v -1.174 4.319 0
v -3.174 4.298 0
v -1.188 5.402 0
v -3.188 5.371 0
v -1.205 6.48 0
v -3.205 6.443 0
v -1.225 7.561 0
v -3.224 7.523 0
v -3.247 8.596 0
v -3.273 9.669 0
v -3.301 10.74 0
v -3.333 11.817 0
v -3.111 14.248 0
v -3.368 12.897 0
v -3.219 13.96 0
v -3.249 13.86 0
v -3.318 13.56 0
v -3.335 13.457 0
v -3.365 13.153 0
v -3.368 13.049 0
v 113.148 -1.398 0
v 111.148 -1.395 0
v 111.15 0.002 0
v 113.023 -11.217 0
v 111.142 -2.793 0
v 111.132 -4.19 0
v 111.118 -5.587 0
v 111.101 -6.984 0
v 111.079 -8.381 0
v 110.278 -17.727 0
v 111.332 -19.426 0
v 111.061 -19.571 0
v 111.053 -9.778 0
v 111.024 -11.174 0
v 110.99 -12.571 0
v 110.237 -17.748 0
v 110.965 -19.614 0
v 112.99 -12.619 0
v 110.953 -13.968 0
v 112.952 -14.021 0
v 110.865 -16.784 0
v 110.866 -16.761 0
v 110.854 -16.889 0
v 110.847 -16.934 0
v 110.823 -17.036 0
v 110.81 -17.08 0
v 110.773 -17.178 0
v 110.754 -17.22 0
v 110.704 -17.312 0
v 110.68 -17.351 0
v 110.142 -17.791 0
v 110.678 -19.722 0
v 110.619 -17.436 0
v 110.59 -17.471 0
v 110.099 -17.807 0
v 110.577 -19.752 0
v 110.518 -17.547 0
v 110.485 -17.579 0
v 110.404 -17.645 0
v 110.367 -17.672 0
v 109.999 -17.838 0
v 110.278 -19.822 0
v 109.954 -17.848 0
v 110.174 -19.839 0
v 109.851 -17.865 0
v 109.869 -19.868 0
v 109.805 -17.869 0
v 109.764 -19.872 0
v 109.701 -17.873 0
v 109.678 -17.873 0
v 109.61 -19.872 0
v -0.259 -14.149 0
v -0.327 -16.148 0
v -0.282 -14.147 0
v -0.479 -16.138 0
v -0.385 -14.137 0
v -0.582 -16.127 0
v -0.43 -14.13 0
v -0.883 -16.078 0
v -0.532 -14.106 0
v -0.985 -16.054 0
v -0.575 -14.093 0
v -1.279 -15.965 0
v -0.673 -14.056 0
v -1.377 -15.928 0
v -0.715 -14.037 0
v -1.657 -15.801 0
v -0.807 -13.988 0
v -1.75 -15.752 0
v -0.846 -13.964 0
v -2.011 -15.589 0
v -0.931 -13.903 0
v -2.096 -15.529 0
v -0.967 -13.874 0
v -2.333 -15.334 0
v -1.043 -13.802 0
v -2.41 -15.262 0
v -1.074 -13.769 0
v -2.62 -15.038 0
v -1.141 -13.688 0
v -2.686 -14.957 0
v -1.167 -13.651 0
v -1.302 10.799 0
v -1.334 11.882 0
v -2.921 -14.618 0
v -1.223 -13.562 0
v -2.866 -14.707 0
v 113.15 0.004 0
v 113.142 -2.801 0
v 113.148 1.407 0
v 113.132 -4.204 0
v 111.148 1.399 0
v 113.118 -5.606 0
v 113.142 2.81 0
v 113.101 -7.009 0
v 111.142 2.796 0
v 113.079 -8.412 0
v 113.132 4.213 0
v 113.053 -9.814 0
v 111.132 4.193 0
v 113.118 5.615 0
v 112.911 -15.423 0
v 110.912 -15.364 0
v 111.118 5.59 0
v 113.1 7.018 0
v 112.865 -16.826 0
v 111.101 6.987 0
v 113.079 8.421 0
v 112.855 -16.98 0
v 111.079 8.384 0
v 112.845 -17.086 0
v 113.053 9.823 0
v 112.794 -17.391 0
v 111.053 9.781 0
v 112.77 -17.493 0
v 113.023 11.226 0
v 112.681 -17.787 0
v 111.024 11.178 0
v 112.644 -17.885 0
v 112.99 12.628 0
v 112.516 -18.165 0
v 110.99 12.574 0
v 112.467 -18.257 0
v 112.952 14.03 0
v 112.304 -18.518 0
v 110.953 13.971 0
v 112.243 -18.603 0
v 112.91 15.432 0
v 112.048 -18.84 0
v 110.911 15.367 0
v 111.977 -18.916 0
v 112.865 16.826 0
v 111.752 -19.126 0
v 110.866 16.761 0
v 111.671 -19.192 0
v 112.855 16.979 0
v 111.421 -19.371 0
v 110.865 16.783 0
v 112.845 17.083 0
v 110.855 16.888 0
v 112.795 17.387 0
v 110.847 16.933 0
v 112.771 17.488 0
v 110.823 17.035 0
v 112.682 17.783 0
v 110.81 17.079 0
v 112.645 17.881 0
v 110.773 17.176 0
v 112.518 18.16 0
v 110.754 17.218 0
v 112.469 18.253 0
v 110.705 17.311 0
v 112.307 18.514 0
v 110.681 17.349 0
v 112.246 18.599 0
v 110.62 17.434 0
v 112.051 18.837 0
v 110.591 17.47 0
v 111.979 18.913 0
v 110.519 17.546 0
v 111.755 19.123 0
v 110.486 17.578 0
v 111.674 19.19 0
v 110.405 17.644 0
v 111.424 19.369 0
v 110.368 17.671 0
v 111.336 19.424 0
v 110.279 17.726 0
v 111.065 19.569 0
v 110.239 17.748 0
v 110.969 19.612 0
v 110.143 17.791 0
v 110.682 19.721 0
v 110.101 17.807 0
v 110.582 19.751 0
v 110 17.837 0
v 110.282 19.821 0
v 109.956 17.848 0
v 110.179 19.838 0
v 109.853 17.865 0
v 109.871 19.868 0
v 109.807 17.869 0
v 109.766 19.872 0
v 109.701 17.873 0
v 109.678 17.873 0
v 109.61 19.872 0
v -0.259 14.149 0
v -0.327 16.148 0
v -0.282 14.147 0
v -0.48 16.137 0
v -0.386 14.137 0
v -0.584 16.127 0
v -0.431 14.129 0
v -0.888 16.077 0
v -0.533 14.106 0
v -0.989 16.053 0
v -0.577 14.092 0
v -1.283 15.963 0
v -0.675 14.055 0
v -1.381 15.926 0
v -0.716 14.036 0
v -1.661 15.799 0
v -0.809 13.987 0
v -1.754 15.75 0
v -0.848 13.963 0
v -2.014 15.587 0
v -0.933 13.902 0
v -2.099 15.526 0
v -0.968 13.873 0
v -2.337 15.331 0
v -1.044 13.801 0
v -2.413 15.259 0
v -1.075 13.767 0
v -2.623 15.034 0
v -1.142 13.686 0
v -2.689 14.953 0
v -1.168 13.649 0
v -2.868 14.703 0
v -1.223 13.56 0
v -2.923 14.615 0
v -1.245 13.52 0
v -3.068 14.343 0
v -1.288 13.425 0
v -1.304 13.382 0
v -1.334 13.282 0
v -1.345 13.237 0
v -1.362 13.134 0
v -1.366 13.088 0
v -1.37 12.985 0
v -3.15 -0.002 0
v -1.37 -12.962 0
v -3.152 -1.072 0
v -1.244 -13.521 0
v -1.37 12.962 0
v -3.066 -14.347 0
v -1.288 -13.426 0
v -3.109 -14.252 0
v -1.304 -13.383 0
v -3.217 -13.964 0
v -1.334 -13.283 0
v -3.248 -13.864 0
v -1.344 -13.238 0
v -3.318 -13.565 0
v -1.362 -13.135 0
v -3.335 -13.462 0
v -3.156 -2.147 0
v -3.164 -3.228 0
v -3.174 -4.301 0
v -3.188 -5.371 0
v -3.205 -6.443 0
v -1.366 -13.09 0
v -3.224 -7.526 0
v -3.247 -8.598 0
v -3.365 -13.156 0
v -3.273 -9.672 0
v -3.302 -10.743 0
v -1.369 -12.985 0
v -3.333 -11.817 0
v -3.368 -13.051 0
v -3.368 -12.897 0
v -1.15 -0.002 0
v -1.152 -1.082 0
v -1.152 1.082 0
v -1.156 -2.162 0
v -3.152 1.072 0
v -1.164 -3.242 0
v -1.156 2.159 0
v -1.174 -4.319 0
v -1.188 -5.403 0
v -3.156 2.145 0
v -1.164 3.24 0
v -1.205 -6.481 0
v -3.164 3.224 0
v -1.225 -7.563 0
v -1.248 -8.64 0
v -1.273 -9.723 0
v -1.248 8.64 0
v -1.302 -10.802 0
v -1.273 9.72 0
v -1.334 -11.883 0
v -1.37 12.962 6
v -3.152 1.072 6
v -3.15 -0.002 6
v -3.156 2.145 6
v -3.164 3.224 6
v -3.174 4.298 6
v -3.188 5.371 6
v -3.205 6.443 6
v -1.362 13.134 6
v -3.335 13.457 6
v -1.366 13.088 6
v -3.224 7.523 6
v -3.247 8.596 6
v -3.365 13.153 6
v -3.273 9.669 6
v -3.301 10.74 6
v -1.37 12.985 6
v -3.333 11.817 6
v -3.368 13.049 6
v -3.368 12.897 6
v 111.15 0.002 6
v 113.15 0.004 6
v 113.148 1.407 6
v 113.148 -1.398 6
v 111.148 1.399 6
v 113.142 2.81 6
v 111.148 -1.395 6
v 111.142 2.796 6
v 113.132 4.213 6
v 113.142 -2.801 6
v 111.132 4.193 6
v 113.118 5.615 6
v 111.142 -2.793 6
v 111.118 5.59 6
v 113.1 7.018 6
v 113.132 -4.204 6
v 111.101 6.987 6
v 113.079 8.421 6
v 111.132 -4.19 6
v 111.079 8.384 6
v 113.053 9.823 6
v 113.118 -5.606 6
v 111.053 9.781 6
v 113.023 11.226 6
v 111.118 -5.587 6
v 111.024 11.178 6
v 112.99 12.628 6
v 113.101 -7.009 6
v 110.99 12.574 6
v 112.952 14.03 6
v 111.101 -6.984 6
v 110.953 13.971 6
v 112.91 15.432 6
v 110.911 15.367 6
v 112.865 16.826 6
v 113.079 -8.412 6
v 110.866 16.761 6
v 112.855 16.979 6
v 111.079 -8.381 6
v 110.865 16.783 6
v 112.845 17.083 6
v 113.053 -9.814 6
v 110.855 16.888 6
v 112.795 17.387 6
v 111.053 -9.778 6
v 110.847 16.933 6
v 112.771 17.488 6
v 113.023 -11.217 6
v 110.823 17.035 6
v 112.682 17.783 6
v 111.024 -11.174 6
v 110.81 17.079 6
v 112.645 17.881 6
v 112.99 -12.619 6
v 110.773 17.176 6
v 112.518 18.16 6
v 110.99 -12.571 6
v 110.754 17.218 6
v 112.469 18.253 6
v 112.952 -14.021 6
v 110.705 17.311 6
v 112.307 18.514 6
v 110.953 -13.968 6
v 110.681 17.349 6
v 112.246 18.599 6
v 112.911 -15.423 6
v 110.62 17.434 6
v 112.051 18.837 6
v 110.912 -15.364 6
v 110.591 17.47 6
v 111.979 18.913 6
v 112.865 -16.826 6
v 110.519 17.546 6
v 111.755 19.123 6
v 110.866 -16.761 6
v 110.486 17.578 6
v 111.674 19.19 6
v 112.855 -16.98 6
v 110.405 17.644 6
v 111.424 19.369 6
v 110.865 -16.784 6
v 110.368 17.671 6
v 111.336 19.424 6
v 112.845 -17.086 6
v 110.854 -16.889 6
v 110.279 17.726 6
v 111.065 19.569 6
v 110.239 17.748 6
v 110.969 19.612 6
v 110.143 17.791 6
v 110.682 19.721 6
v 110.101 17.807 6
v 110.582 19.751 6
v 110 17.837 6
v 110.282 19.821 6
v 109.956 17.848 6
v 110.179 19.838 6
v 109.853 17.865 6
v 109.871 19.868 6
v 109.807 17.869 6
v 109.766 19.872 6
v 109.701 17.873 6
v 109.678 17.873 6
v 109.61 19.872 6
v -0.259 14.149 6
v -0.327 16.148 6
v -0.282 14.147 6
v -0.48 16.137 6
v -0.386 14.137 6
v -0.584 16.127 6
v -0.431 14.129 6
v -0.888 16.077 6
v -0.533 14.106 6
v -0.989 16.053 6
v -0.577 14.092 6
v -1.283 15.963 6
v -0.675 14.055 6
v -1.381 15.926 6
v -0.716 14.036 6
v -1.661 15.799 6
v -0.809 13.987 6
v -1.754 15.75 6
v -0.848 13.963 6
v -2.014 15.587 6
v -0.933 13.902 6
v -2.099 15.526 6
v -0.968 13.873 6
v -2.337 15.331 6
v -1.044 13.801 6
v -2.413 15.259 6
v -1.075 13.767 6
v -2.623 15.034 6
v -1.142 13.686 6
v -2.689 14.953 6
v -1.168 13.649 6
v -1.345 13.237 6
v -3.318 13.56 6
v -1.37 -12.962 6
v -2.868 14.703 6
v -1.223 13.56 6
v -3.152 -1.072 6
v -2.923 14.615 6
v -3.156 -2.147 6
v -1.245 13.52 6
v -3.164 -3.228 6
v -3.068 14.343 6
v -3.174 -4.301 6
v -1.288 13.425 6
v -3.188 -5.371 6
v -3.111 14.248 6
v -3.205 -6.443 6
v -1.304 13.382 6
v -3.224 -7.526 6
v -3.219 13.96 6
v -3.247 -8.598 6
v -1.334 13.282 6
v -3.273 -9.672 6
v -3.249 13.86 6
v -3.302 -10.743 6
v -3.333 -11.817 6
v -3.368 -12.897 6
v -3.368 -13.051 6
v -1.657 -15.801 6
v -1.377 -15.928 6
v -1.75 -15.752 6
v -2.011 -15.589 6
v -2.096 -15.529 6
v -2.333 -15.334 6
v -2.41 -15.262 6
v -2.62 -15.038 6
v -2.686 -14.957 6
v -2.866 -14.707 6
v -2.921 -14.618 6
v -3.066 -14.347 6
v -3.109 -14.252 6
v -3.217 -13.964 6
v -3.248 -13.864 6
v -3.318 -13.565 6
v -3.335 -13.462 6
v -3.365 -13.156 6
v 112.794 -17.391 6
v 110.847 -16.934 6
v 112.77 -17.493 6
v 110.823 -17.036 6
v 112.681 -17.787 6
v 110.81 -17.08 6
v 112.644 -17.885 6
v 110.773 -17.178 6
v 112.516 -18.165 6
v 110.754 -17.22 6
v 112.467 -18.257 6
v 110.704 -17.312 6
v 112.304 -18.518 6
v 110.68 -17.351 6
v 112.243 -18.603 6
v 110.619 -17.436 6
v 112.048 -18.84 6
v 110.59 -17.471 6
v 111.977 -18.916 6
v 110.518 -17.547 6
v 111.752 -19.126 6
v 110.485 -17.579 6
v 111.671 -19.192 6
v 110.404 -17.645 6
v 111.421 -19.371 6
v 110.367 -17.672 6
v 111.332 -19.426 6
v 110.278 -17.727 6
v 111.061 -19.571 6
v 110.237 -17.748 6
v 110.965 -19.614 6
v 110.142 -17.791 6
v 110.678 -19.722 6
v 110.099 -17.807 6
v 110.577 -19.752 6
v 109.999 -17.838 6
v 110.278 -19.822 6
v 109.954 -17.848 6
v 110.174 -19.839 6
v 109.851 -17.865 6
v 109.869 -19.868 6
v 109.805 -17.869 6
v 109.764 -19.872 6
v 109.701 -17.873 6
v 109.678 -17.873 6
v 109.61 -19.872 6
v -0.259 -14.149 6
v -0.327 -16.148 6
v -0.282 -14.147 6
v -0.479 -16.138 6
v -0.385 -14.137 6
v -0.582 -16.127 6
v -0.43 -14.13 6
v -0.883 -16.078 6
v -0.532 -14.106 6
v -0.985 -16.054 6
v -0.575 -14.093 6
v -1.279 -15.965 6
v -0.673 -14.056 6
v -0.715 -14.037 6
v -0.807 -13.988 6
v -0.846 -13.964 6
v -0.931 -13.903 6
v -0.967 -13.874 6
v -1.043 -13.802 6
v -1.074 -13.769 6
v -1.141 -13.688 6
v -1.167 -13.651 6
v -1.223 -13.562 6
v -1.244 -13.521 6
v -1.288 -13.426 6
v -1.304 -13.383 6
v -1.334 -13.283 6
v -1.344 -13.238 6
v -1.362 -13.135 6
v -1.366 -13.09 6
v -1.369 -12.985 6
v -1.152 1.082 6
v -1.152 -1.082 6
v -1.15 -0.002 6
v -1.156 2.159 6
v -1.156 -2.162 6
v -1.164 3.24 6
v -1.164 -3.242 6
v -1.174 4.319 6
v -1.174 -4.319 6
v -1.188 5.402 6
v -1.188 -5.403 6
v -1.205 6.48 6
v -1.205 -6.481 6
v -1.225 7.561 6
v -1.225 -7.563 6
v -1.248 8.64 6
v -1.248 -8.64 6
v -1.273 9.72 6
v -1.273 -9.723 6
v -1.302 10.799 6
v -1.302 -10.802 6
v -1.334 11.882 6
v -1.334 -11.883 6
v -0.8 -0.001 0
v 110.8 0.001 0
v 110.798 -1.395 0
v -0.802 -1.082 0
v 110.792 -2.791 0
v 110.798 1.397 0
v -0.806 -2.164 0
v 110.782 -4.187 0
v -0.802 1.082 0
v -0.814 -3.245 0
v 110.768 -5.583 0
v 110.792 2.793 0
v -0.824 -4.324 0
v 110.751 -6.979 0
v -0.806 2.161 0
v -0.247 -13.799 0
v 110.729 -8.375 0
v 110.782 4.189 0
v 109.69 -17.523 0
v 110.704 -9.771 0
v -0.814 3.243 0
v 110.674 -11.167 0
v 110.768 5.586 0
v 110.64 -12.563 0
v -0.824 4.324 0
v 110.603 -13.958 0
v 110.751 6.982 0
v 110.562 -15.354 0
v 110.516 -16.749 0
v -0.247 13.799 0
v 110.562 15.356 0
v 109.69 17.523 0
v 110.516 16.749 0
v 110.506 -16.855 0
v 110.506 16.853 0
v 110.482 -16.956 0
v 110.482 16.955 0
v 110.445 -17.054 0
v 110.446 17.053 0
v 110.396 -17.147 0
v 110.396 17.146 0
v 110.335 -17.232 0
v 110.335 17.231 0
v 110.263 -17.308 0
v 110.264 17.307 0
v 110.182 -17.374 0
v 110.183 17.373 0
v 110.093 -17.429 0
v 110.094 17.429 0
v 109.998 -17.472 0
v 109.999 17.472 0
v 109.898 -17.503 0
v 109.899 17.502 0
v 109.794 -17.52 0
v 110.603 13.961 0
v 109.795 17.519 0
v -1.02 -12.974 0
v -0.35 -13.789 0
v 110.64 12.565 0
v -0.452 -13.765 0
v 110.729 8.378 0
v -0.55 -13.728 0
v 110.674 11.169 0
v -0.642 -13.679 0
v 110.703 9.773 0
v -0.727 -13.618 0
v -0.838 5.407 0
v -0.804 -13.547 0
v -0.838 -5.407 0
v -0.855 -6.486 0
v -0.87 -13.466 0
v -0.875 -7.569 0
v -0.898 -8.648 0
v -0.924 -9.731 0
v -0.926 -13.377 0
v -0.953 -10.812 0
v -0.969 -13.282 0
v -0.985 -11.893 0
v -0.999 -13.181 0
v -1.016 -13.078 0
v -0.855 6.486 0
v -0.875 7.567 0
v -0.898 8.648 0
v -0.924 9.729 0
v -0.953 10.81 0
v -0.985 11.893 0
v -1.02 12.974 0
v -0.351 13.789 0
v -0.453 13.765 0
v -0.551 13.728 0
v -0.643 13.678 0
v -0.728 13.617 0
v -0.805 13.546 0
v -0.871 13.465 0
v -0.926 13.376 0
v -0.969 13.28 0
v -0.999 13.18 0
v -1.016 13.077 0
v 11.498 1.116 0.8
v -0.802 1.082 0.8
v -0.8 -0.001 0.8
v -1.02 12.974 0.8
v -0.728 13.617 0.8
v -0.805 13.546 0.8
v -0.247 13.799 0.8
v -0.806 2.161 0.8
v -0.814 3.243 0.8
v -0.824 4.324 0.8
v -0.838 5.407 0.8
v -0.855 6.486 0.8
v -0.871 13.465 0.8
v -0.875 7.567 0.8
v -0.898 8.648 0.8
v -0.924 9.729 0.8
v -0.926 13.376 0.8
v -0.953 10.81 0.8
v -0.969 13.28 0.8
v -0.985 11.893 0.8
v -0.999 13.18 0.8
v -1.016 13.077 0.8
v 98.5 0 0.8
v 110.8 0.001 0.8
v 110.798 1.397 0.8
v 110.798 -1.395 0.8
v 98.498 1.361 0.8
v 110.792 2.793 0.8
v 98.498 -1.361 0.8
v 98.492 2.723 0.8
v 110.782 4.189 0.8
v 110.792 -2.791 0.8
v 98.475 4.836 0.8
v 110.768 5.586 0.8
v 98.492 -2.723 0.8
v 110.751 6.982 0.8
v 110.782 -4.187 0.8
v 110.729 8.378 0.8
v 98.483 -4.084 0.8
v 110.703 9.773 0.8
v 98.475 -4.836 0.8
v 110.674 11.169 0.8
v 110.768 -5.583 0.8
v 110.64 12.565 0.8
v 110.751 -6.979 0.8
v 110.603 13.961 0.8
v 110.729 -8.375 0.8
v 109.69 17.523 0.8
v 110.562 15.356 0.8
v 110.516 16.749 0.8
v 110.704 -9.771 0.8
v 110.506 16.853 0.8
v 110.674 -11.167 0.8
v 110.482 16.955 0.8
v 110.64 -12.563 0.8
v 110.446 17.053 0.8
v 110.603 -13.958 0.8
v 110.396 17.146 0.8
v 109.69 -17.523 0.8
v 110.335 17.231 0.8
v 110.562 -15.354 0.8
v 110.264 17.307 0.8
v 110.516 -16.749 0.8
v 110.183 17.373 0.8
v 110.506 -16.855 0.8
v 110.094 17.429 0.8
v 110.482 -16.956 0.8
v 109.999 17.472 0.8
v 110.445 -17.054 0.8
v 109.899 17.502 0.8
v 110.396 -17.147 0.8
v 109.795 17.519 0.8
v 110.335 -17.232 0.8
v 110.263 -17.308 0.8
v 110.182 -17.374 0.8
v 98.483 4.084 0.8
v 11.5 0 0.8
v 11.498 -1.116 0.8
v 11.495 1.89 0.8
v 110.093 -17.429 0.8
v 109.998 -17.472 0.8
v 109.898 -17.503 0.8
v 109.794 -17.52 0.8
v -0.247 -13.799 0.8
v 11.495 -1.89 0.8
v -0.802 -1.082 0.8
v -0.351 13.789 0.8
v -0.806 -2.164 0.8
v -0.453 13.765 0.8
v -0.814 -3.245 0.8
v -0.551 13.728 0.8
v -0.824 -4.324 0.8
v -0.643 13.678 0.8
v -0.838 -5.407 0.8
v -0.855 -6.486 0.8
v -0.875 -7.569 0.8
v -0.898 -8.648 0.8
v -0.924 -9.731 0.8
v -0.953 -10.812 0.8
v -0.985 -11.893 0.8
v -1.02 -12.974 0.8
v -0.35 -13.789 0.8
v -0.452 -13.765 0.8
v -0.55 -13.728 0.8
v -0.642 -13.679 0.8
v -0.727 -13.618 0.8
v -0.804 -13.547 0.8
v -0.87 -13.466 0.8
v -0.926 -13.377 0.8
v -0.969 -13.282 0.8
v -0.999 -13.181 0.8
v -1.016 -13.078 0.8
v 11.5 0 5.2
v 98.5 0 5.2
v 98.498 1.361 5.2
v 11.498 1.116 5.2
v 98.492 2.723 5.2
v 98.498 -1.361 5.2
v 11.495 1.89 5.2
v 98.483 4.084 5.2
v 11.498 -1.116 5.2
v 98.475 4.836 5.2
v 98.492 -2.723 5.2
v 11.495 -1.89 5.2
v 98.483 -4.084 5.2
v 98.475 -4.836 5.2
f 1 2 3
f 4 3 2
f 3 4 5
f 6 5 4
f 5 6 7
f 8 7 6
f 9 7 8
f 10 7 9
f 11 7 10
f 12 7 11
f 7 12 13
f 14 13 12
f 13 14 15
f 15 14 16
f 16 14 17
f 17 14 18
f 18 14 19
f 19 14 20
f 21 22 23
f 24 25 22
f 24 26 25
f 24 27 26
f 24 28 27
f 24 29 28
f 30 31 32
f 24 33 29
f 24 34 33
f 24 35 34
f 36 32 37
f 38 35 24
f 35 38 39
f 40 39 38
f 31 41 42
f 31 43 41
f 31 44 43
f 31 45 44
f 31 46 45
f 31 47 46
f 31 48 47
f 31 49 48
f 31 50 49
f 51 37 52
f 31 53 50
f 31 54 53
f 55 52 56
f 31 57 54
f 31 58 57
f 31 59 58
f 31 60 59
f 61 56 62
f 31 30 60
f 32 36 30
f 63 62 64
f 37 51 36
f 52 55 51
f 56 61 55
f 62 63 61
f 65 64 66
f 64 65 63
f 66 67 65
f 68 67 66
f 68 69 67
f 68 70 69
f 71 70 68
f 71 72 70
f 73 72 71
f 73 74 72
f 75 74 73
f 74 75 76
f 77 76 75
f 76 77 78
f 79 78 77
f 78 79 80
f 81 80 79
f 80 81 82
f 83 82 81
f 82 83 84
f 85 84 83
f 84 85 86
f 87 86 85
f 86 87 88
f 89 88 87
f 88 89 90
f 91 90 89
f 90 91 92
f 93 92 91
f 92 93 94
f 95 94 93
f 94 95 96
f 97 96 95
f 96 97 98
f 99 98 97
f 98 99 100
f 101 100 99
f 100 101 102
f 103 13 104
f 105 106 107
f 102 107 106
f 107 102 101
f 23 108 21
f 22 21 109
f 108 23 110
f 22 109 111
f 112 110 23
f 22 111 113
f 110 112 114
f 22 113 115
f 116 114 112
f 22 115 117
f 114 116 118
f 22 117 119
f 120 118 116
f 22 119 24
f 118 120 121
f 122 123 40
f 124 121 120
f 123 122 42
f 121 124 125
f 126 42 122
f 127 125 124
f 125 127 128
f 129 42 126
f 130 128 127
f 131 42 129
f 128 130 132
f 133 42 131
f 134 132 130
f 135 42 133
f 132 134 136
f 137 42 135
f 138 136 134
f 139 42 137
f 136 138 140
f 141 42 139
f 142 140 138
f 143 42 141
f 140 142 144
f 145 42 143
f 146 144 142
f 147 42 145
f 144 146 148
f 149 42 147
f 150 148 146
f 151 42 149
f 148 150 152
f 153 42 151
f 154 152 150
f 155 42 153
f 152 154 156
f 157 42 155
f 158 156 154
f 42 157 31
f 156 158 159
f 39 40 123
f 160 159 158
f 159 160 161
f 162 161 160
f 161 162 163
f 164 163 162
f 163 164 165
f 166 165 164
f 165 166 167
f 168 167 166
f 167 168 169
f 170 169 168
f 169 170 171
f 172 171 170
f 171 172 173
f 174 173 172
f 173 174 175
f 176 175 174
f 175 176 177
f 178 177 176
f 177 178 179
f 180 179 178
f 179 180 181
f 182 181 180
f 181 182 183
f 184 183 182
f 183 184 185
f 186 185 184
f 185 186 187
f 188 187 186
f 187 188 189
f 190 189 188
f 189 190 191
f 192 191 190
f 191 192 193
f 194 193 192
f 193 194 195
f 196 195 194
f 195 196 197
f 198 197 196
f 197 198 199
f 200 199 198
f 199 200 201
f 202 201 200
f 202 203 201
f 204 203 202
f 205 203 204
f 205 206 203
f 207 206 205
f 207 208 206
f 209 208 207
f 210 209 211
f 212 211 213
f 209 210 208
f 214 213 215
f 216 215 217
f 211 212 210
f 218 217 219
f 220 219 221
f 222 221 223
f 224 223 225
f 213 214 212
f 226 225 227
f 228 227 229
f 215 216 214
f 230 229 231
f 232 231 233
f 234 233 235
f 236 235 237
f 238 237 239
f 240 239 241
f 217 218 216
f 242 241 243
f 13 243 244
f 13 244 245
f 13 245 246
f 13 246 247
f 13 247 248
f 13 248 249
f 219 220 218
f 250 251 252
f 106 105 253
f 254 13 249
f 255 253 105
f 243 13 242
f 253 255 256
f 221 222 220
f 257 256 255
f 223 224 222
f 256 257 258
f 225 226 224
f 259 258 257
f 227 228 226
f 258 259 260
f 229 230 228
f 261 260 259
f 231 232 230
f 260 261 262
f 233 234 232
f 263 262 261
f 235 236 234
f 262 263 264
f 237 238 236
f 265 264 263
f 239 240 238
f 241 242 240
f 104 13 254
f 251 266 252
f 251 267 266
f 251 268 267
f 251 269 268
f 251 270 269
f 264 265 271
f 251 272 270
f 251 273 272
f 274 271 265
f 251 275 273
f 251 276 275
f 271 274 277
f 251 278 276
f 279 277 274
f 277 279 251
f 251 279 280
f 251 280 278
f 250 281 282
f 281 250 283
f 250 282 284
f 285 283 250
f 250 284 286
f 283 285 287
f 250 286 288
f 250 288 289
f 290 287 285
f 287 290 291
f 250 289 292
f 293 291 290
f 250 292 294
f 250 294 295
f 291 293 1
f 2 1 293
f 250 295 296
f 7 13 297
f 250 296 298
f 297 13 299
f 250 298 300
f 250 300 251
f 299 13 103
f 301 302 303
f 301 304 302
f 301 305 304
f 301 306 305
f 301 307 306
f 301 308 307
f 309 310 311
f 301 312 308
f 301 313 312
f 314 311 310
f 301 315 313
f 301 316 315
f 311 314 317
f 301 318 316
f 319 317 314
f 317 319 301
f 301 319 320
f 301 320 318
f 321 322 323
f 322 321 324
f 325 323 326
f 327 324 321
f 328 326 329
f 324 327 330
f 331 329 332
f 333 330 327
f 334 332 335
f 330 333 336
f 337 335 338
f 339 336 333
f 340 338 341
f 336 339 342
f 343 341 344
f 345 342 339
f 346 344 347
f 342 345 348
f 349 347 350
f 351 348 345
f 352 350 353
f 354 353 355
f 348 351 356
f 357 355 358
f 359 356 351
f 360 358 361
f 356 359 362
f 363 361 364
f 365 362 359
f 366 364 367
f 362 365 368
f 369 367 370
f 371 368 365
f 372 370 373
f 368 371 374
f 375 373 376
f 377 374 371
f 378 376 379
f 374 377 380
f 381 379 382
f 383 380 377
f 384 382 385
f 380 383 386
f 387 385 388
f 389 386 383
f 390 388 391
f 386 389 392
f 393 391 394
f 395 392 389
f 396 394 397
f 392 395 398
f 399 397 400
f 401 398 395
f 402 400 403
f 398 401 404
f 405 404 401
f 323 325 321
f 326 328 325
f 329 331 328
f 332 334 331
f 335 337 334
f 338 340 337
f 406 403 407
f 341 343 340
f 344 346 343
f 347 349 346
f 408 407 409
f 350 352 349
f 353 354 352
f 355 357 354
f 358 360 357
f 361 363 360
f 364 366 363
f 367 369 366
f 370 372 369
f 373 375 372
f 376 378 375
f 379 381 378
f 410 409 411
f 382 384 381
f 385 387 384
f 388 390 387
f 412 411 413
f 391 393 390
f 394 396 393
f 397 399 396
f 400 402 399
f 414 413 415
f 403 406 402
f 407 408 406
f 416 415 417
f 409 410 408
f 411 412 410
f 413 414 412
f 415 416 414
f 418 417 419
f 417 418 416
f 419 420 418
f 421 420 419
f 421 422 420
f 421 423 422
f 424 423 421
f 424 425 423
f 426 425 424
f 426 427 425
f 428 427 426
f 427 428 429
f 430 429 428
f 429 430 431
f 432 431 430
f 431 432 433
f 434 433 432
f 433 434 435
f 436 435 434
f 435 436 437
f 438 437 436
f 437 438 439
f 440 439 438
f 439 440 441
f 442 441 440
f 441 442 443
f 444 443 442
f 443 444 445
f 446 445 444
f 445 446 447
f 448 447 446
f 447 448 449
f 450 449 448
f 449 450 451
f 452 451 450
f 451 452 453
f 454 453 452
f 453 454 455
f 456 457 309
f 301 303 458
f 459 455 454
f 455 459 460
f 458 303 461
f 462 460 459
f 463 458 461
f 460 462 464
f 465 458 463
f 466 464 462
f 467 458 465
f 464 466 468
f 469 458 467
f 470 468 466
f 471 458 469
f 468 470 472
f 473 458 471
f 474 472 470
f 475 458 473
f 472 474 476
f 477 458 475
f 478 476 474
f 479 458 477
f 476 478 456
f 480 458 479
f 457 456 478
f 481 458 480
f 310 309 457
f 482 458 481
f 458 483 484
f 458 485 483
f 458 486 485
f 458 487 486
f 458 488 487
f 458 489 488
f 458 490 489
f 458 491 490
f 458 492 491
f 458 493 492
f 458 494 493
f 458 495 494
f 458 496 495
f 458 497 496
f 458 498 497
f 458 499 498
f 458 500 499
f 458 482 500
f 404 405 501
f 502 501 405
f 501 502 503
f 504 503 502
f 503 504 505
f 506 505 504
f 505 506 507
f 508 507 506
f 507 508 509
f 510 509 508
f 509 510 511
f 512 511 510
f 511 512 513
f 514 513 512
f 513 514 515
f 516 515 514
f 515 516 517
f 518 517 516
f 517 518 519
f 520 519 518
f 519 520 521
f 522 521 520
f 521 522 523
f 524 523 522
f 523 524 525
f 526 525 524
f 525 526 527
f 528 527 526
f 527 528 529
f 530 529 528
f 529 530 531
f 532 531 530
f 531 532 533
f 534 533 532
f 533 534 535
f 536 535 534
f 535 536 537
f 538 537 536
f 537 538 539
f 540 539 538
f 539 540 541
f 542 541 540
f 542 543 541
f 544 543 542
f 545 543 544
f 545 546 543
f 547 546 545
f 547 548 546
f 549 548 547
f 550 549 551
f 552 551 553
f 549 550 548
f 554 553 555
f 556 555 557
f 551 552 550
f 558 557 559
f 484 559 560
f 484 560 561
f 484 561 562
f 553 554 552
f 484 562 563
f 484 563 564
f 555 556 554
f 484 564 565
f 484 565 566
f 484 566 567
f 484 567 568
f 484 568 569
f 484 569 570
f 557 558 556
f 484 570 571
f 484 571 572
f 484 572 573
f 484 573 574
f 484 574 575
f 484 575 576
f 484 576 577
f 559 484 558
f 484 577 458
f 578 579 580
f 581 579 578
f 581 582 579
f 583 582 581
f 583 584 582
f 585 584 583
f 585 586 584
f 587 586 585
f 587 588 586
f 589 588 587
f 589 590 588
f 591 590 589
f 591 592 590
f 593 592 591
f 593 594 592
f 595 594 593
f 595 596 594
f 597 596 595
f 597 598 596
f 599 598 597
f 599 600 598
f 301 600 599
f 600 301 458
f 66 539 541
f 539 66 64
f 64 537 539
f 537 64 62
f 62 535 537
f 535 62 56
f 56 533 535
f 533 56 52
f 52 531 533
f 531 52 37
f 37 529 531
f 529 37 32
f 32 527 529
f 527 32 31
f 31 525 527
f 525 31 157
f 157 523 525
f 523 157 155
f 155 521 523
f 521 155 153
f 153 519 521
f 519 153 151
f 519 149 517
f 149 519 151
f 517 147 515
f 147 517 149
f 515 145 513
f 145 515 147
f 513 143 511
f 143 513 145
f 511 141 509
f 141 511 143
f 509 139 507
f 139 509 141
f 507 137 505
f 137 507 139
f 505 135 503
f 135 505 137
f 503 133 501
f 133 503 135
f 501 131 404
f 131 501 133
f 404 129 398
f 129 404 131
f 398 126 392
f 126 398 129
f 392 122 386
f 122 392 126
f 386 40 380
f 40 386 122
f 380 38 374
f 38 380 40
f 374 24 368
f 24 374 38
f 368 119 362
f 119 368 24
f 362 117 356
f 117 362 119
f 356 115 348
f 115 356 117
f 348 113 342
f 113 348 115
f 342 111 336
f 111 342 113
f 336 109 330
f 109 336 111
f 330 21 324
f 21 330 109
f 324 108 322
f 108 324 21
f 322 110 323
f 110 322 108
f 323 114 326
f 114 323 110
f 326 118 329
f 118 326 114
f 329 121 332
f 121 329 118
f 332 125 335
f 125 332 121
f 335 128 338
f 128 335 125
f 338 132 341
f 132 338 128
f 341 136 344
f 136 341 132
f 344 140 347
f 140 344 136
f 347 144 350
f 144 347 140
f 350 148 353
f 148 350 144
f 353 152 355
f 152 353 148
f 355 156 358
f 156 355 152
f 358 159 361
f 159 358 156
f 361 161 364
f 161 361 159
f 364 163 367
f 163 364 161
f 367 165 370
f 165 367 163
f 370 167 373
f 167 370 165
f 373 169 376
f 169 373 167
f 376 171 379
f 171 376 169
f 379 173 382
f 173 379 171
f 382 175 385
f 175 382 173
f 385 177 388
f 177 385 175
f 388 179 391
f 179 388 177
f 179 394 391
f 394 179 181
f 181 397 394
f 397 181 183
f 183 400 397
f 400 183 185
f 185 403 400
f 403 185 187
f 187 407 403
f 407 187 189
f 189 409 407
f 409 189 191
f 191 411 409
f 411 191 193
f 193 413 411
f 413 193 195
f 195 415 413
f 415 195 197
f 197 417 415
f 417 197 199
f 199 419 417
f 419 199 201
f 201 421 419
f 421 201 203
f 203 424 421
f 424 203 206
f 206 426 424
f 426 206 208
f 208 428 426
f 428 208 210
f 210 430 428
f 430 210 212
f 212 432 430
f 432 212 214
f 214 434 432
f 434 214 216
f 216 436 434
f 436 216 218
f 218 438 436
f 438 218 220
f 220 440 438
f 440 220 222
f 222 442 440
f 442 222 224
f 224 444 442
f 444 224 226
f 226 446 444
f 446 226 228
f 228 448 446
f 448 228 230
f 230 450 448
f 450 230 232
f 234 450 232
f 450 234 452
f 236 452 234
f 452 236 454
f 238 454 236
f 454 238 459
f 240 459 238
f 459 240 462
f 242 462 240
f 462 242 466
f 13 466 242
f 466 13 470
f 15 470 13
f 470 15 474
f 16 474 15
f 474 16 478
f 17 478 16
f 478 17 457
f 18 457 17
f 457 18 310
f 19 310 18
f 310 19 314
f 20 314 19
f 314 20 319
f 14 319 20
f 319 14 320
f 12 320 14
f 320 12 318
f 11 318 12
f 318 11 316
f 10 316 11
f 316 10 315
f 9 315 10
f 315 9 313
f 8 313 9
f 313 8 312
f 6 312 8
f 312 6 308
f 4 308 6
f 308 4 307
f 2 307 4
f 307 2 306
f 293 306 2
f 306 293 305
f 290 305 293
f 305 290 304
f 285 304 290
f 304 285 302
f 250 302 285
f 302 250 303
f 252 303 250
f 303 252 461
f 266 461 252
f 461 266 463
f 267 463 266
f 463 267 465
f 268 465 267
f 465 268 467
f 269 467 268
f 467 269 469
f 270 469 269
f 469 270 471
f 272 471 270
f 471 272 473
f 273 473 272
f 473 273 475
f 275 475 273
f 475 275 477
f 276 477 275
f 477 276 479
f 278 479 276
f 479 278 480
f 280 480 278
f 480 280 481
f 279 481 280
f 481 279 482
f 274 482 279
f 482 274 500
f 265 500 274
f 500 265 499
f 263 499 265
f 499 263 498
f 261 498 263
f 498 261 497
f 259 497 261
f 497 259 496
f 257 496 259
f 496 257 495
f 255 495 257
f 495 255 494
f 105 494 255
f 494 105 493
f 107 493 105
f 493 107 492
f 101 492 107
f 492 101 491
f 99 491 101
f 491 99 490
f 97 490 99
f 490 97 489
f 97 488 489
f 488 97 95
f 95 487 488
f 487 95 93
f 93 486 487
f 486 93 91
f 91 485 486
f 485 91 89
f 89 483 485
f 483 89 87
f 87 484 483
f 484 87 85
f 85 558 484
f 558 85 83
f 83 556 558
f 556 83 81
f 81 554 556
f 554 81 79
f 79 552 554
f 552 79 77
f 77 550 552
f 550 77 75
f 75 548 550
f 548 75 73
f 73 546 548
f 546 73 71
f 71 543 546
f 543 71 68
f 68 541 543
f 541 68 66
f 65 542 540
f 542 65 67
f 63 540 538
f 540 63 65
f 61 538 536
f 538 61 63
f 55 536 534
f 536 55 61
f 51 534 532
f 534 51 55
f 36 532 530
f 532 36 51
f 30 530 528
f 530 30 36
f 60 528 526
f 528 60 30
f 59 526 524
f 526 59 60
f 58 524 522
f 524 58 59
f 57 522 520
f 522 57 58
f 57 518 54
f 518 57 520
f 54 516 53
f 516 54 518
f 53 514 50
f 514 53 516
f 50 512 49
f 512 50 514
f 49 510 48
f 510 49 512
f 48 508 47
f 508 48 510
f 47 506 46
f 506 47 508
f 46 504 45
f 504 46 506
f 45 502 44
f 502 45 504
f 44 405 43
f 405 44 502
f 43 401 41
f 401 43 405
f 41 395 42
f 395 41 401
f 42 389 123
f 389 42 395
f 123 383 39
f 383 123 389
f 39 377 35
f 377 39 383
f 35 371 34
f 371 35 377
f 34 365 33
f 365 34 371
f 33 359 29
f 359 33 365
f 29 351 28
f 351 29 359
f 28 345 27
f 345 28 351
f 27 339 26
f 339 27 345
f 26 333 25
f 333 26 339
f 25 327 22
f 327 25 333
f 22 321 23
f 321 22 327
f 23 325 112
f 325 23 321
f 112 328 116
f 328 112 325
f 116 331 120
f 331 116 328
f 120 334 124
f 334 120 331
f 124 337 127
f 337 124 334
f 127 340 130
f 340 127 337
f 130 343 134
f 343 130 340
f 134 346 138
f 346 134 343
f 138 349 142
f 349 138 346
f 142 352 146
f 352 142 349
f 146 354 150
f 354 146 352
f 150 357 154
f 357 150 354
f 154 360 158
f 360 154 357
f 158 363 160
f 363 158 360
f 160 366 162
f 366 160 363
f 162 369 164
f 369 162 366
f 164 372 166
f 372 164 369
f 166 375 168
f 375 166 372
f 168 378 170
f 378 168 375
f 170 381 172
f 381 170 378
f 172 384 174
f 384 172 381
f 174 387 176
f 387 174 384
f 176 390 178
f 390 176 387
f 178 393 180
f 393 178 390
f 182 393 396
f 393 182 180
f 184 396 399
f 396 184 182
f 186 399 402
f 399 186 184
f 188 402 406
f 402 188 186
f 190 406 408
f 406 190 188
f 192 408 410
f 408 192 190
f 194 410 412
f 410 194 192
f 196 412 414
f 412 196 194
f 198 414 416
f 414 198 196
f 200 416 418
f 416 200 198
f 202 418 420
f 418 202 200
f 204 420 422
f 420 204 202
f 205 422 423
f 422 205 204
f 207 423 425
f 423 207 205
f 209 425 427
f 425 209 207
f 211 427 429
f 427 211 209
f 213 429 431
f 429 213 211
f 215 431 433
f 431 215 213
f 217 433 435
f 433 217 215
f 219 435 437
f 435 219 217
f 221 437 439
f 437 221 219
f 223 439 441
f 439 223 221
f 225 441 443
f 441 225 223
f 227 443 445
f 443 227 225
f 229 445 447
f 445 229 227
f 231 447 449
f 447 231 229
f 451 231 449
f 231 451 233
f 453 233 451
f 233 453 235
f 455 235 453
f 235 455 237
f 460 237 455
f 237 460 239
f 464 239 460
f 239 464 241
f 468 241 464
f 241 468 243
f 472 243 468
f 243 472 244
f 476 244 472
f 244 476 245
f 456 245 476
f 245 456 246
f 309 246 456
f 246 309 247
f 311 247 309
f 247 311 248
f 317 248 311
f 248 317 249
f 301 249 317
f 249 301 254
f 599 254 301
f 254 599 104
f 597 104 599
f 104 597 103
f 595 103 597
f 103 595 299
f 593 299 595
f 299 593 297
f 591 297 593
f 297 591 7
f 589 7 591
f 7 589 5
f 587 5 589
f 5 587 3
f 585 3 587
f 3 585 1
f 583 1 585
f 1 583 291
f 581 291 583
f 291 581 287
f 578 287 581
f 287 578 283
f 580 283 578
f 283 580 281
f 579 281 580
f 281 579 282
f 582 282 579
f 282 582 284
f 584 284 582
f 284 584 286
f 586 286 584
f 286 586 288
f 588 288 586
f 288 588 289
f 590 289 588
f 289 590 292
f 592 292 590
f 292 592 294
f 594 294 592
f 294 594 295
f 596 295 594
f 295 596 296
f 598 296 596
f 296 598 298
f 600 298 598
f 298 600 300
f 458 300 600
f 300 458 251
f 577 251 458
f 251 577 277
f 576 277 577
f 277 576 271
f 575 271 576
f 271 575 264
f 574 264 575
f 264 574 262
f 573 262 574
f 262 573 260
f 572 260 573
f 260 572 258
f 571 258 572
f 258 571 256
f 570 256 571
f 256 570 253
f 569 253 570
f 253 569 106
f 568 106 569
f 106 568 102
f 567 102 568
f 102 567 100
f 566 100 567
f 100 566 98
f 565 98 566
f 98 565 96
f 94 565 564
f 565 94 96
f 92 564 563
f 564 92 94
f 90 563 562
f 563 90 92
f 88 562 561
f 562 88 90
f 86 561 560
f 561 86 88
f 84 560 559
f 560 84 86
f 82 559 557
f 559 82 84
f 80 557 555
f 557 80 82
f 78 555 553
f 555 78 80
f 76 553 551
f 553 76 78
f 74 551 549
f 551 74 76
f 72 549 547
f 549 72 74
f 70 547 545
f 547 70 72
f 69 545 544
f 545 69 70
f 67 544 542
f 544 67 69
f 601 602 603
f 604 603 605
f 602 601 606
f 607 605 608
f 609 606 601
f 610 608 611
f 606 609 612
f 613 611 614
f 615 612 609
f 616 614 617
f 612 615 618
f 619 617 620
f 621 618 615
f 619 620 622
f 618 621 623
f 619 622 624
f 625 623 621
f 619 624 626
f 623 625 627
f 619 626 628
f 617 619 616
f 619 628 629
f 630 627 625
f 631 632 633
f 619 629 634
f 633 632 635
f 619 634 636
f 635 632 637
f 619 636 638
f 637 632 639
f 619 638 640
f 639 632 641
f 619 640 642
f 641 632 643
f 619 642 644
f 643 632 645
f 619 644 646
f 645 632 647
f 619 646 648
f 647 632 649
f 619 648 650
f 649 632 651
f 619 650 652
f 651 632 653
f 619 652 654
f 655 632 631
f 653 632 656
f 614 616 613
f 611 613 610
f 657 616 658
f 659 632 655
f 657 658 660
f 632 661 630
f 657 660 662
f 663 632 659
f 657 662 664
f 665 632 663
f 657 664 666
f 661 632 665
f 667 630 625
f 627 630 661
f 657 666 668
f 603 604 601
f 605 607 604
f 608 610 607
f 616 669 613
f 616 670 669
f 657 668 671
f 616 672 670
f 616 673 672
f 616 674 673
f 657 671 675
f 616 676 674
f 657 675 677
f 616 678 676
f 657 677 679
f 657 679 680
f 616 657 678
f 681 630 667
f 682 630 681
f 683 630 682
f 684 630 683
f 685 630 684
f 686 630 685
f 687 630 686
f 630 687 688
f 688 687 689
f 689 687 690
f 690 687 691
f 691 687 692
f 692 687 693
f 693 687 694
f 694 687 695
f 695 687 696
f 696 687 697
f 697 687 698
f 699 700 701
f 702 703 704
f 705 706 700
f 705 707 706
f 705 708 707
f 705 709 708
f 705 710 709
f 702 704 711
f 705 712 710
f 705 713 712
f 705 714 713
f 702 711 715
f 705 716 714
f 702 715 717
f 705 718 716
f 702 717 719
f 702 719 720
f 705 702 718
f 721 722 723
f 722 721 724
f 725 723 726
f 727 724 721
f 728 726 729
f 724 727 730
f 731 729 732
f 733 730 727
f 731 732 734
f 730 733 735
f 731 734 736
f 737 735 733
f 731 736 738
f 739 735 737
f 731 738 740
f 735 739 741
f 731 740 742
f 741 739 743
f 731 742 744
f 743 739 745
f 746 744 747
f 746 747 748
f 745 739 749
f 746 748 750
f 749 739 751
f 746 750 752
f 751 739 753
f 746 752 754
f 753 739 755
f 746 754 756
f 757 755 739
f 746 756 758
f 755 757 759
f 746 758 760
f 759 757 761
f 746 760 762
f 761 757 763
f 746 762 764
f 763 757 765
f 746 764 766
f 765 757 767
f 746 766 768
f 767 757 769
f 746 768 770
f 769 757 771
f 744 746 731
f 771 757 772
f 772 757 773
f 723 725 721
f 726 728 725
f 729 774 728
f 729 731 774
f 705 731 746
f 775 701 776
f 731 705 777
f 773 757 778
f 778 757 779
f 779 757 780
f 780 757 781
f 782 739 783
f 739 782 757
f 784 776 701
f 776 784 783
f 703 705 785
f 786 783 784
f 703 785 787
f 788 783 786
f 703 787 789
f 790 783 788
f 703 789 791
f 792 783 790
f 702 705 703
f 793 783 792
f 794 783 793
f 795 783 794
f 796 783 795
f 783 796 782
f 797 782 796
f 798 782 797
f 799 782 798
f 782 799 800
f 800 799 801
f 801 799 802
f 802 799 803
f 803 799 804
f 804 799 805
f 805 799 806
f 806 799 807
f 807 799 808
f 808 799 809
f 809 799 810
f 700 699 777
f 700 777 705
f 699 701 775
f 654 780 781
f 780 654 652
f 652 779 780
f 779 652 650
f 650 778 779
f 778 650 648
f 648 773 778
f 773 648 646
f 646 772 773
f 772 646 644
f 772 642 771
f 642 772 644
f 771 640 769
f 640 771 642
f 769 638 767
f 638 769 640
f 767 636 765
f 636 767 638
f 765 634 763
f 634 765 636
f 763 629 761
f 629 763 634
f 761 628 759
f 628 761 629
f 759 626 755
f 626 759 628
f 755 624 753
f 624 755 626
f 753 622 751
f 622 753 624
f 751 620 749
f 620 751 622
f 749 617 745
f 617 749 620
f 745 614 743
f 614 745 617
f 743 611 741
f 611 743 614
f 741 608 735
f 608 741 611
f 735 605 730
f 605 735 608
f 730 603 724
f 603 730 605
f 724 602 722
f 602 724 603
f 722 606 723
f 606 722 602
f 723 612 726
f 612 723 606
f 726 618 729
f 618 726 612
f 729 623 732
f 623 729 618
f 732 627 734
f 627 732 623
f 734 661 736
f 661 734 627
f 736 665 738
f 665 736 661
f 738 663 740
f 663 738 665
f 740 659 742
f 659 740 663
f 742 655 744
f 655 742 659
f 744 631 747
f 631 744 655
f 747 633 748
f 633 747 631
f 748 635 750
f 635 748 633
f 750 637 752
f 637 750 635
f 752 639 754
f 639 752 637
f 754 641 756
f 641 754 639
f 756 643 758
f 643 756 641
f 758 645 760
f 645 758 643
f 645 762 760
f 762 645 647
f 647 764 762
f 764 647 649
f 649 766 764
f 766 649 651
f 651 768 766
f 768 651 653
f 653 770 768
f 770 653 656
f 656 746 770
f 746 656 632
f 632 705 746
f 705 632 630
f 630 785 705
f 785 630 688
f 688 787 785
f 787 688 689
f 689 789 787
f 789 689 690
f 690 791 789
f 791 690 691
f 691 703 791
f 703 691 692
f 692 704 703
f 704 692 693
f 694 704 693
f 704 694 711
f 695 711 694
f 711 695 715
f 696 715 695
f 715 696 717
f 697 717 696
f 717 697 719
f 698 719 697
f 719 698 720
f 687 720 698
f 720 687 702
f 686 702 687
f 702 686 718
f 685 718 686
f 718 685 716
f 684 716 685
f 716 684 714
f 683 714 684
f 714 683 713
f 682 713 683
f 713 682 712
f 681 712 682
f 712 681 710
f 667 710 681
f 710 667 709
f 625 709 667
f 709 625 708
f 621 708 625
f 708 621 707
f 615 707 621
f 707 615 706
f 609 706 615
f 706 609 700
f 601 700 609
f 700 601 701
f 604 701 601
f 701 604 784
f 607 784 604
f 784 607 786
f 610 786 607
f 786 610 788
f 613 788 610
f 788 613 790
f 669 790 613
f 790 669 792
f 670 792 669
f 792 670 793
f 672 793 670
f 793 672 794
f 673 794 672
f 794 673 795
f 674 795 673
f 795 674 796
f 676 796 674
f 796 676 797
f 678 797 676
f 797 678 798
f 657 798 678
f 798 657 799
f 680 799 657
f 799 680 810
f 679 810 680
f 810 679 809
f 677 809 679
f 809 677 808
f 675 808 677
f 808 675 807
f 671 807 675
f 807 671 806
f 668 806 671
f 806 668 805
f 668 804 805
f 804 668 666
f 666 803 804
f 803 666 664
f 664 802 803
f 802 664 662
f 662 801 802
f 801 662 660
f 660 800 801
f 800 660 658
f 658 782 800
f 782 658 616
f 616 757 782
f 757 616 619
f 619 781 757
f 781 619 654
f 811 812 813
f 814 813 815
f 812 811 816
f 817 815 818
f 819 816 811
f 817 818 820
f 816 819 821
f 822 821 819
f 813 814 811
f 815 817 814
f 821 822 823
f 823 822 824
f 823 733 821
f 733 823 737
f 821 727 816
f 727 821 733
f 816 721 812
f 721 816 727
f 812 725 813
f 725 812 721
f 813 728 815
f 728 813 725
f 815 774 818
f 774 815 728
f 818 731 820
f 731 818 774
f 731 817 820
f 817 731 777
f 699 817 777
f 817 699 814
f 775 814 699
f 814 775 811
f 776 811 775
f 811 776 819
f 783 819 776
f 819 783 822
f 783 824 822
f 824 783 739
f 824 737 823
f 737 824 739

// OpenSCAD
// Gen-EE — fit coupon (bay part): O20/O5 THROUGH pockets at carrier thickness (test on a steel offcut), 608 seat,
// D-flat bore, gap shim, and one bobbin-bay slice (bobbin footprint + bay_clear) to test former fit.
include <parameters.scad>;
$fn = 48;
// D-flat keyed bore: flat faces +X (angle 0 = magnet pocket 0 = index notch)
module dflat_bore(h) {
    intersection() {
        cylinder(d=shaft_bore, h=h);
        translate([-shaft_bore, -shaft_bore, 0]) cube([shaft_bore + dflat_x, 2*shaft_bore, h]);
    }
}
module sector_2d(r_in, r_out, ang) {
    polygon([
        for (a = [-ang/2 : ang/24 : ang/2]) [r_in*cos(a), r_in*sin(a)],
        for (a = [ang/2 : -ang/24 : -ang/2]) [r_out*cos(a), r_out*sin(a)]
    ]);
}
module footprint_2d() { offset(r=wall) sector_2d(coil_id_r, coil_od_r, span_deg); }
module hub_2d()       { offset(delta=-coil_core_inset) sector_2d(coil_id_r, coil_od_r, span_deg); }

// bay slice at FULL stator thickness with one bobbin BASE printed IN PLACE inside it (bay_clear gap): this is the
// print-in-place test for the one-plate stator. After printing, the base must pop out with finger pressure; if it is fused,
// print coil_former.stl separately (print-packs/parts/) instead of using the in-place bases.
translate([-coil_id_r, 0, 0]) {
    difference() {
        linear_extrude(stator_thick) offset(r=bay_clear + 2) footprint_2d();
        translate([0, 0, -0.1]) linear_extrude(stator_thick + 0.2) offset(r=bay_clear) footprint_2d();
    }
    union() {
        linear_extrude(flange_t) footprint_2d();
        translate([0, 0, flange_t - 0.01]) linear_extrude(former_web + 0.01) hub_2d();
    }
}
